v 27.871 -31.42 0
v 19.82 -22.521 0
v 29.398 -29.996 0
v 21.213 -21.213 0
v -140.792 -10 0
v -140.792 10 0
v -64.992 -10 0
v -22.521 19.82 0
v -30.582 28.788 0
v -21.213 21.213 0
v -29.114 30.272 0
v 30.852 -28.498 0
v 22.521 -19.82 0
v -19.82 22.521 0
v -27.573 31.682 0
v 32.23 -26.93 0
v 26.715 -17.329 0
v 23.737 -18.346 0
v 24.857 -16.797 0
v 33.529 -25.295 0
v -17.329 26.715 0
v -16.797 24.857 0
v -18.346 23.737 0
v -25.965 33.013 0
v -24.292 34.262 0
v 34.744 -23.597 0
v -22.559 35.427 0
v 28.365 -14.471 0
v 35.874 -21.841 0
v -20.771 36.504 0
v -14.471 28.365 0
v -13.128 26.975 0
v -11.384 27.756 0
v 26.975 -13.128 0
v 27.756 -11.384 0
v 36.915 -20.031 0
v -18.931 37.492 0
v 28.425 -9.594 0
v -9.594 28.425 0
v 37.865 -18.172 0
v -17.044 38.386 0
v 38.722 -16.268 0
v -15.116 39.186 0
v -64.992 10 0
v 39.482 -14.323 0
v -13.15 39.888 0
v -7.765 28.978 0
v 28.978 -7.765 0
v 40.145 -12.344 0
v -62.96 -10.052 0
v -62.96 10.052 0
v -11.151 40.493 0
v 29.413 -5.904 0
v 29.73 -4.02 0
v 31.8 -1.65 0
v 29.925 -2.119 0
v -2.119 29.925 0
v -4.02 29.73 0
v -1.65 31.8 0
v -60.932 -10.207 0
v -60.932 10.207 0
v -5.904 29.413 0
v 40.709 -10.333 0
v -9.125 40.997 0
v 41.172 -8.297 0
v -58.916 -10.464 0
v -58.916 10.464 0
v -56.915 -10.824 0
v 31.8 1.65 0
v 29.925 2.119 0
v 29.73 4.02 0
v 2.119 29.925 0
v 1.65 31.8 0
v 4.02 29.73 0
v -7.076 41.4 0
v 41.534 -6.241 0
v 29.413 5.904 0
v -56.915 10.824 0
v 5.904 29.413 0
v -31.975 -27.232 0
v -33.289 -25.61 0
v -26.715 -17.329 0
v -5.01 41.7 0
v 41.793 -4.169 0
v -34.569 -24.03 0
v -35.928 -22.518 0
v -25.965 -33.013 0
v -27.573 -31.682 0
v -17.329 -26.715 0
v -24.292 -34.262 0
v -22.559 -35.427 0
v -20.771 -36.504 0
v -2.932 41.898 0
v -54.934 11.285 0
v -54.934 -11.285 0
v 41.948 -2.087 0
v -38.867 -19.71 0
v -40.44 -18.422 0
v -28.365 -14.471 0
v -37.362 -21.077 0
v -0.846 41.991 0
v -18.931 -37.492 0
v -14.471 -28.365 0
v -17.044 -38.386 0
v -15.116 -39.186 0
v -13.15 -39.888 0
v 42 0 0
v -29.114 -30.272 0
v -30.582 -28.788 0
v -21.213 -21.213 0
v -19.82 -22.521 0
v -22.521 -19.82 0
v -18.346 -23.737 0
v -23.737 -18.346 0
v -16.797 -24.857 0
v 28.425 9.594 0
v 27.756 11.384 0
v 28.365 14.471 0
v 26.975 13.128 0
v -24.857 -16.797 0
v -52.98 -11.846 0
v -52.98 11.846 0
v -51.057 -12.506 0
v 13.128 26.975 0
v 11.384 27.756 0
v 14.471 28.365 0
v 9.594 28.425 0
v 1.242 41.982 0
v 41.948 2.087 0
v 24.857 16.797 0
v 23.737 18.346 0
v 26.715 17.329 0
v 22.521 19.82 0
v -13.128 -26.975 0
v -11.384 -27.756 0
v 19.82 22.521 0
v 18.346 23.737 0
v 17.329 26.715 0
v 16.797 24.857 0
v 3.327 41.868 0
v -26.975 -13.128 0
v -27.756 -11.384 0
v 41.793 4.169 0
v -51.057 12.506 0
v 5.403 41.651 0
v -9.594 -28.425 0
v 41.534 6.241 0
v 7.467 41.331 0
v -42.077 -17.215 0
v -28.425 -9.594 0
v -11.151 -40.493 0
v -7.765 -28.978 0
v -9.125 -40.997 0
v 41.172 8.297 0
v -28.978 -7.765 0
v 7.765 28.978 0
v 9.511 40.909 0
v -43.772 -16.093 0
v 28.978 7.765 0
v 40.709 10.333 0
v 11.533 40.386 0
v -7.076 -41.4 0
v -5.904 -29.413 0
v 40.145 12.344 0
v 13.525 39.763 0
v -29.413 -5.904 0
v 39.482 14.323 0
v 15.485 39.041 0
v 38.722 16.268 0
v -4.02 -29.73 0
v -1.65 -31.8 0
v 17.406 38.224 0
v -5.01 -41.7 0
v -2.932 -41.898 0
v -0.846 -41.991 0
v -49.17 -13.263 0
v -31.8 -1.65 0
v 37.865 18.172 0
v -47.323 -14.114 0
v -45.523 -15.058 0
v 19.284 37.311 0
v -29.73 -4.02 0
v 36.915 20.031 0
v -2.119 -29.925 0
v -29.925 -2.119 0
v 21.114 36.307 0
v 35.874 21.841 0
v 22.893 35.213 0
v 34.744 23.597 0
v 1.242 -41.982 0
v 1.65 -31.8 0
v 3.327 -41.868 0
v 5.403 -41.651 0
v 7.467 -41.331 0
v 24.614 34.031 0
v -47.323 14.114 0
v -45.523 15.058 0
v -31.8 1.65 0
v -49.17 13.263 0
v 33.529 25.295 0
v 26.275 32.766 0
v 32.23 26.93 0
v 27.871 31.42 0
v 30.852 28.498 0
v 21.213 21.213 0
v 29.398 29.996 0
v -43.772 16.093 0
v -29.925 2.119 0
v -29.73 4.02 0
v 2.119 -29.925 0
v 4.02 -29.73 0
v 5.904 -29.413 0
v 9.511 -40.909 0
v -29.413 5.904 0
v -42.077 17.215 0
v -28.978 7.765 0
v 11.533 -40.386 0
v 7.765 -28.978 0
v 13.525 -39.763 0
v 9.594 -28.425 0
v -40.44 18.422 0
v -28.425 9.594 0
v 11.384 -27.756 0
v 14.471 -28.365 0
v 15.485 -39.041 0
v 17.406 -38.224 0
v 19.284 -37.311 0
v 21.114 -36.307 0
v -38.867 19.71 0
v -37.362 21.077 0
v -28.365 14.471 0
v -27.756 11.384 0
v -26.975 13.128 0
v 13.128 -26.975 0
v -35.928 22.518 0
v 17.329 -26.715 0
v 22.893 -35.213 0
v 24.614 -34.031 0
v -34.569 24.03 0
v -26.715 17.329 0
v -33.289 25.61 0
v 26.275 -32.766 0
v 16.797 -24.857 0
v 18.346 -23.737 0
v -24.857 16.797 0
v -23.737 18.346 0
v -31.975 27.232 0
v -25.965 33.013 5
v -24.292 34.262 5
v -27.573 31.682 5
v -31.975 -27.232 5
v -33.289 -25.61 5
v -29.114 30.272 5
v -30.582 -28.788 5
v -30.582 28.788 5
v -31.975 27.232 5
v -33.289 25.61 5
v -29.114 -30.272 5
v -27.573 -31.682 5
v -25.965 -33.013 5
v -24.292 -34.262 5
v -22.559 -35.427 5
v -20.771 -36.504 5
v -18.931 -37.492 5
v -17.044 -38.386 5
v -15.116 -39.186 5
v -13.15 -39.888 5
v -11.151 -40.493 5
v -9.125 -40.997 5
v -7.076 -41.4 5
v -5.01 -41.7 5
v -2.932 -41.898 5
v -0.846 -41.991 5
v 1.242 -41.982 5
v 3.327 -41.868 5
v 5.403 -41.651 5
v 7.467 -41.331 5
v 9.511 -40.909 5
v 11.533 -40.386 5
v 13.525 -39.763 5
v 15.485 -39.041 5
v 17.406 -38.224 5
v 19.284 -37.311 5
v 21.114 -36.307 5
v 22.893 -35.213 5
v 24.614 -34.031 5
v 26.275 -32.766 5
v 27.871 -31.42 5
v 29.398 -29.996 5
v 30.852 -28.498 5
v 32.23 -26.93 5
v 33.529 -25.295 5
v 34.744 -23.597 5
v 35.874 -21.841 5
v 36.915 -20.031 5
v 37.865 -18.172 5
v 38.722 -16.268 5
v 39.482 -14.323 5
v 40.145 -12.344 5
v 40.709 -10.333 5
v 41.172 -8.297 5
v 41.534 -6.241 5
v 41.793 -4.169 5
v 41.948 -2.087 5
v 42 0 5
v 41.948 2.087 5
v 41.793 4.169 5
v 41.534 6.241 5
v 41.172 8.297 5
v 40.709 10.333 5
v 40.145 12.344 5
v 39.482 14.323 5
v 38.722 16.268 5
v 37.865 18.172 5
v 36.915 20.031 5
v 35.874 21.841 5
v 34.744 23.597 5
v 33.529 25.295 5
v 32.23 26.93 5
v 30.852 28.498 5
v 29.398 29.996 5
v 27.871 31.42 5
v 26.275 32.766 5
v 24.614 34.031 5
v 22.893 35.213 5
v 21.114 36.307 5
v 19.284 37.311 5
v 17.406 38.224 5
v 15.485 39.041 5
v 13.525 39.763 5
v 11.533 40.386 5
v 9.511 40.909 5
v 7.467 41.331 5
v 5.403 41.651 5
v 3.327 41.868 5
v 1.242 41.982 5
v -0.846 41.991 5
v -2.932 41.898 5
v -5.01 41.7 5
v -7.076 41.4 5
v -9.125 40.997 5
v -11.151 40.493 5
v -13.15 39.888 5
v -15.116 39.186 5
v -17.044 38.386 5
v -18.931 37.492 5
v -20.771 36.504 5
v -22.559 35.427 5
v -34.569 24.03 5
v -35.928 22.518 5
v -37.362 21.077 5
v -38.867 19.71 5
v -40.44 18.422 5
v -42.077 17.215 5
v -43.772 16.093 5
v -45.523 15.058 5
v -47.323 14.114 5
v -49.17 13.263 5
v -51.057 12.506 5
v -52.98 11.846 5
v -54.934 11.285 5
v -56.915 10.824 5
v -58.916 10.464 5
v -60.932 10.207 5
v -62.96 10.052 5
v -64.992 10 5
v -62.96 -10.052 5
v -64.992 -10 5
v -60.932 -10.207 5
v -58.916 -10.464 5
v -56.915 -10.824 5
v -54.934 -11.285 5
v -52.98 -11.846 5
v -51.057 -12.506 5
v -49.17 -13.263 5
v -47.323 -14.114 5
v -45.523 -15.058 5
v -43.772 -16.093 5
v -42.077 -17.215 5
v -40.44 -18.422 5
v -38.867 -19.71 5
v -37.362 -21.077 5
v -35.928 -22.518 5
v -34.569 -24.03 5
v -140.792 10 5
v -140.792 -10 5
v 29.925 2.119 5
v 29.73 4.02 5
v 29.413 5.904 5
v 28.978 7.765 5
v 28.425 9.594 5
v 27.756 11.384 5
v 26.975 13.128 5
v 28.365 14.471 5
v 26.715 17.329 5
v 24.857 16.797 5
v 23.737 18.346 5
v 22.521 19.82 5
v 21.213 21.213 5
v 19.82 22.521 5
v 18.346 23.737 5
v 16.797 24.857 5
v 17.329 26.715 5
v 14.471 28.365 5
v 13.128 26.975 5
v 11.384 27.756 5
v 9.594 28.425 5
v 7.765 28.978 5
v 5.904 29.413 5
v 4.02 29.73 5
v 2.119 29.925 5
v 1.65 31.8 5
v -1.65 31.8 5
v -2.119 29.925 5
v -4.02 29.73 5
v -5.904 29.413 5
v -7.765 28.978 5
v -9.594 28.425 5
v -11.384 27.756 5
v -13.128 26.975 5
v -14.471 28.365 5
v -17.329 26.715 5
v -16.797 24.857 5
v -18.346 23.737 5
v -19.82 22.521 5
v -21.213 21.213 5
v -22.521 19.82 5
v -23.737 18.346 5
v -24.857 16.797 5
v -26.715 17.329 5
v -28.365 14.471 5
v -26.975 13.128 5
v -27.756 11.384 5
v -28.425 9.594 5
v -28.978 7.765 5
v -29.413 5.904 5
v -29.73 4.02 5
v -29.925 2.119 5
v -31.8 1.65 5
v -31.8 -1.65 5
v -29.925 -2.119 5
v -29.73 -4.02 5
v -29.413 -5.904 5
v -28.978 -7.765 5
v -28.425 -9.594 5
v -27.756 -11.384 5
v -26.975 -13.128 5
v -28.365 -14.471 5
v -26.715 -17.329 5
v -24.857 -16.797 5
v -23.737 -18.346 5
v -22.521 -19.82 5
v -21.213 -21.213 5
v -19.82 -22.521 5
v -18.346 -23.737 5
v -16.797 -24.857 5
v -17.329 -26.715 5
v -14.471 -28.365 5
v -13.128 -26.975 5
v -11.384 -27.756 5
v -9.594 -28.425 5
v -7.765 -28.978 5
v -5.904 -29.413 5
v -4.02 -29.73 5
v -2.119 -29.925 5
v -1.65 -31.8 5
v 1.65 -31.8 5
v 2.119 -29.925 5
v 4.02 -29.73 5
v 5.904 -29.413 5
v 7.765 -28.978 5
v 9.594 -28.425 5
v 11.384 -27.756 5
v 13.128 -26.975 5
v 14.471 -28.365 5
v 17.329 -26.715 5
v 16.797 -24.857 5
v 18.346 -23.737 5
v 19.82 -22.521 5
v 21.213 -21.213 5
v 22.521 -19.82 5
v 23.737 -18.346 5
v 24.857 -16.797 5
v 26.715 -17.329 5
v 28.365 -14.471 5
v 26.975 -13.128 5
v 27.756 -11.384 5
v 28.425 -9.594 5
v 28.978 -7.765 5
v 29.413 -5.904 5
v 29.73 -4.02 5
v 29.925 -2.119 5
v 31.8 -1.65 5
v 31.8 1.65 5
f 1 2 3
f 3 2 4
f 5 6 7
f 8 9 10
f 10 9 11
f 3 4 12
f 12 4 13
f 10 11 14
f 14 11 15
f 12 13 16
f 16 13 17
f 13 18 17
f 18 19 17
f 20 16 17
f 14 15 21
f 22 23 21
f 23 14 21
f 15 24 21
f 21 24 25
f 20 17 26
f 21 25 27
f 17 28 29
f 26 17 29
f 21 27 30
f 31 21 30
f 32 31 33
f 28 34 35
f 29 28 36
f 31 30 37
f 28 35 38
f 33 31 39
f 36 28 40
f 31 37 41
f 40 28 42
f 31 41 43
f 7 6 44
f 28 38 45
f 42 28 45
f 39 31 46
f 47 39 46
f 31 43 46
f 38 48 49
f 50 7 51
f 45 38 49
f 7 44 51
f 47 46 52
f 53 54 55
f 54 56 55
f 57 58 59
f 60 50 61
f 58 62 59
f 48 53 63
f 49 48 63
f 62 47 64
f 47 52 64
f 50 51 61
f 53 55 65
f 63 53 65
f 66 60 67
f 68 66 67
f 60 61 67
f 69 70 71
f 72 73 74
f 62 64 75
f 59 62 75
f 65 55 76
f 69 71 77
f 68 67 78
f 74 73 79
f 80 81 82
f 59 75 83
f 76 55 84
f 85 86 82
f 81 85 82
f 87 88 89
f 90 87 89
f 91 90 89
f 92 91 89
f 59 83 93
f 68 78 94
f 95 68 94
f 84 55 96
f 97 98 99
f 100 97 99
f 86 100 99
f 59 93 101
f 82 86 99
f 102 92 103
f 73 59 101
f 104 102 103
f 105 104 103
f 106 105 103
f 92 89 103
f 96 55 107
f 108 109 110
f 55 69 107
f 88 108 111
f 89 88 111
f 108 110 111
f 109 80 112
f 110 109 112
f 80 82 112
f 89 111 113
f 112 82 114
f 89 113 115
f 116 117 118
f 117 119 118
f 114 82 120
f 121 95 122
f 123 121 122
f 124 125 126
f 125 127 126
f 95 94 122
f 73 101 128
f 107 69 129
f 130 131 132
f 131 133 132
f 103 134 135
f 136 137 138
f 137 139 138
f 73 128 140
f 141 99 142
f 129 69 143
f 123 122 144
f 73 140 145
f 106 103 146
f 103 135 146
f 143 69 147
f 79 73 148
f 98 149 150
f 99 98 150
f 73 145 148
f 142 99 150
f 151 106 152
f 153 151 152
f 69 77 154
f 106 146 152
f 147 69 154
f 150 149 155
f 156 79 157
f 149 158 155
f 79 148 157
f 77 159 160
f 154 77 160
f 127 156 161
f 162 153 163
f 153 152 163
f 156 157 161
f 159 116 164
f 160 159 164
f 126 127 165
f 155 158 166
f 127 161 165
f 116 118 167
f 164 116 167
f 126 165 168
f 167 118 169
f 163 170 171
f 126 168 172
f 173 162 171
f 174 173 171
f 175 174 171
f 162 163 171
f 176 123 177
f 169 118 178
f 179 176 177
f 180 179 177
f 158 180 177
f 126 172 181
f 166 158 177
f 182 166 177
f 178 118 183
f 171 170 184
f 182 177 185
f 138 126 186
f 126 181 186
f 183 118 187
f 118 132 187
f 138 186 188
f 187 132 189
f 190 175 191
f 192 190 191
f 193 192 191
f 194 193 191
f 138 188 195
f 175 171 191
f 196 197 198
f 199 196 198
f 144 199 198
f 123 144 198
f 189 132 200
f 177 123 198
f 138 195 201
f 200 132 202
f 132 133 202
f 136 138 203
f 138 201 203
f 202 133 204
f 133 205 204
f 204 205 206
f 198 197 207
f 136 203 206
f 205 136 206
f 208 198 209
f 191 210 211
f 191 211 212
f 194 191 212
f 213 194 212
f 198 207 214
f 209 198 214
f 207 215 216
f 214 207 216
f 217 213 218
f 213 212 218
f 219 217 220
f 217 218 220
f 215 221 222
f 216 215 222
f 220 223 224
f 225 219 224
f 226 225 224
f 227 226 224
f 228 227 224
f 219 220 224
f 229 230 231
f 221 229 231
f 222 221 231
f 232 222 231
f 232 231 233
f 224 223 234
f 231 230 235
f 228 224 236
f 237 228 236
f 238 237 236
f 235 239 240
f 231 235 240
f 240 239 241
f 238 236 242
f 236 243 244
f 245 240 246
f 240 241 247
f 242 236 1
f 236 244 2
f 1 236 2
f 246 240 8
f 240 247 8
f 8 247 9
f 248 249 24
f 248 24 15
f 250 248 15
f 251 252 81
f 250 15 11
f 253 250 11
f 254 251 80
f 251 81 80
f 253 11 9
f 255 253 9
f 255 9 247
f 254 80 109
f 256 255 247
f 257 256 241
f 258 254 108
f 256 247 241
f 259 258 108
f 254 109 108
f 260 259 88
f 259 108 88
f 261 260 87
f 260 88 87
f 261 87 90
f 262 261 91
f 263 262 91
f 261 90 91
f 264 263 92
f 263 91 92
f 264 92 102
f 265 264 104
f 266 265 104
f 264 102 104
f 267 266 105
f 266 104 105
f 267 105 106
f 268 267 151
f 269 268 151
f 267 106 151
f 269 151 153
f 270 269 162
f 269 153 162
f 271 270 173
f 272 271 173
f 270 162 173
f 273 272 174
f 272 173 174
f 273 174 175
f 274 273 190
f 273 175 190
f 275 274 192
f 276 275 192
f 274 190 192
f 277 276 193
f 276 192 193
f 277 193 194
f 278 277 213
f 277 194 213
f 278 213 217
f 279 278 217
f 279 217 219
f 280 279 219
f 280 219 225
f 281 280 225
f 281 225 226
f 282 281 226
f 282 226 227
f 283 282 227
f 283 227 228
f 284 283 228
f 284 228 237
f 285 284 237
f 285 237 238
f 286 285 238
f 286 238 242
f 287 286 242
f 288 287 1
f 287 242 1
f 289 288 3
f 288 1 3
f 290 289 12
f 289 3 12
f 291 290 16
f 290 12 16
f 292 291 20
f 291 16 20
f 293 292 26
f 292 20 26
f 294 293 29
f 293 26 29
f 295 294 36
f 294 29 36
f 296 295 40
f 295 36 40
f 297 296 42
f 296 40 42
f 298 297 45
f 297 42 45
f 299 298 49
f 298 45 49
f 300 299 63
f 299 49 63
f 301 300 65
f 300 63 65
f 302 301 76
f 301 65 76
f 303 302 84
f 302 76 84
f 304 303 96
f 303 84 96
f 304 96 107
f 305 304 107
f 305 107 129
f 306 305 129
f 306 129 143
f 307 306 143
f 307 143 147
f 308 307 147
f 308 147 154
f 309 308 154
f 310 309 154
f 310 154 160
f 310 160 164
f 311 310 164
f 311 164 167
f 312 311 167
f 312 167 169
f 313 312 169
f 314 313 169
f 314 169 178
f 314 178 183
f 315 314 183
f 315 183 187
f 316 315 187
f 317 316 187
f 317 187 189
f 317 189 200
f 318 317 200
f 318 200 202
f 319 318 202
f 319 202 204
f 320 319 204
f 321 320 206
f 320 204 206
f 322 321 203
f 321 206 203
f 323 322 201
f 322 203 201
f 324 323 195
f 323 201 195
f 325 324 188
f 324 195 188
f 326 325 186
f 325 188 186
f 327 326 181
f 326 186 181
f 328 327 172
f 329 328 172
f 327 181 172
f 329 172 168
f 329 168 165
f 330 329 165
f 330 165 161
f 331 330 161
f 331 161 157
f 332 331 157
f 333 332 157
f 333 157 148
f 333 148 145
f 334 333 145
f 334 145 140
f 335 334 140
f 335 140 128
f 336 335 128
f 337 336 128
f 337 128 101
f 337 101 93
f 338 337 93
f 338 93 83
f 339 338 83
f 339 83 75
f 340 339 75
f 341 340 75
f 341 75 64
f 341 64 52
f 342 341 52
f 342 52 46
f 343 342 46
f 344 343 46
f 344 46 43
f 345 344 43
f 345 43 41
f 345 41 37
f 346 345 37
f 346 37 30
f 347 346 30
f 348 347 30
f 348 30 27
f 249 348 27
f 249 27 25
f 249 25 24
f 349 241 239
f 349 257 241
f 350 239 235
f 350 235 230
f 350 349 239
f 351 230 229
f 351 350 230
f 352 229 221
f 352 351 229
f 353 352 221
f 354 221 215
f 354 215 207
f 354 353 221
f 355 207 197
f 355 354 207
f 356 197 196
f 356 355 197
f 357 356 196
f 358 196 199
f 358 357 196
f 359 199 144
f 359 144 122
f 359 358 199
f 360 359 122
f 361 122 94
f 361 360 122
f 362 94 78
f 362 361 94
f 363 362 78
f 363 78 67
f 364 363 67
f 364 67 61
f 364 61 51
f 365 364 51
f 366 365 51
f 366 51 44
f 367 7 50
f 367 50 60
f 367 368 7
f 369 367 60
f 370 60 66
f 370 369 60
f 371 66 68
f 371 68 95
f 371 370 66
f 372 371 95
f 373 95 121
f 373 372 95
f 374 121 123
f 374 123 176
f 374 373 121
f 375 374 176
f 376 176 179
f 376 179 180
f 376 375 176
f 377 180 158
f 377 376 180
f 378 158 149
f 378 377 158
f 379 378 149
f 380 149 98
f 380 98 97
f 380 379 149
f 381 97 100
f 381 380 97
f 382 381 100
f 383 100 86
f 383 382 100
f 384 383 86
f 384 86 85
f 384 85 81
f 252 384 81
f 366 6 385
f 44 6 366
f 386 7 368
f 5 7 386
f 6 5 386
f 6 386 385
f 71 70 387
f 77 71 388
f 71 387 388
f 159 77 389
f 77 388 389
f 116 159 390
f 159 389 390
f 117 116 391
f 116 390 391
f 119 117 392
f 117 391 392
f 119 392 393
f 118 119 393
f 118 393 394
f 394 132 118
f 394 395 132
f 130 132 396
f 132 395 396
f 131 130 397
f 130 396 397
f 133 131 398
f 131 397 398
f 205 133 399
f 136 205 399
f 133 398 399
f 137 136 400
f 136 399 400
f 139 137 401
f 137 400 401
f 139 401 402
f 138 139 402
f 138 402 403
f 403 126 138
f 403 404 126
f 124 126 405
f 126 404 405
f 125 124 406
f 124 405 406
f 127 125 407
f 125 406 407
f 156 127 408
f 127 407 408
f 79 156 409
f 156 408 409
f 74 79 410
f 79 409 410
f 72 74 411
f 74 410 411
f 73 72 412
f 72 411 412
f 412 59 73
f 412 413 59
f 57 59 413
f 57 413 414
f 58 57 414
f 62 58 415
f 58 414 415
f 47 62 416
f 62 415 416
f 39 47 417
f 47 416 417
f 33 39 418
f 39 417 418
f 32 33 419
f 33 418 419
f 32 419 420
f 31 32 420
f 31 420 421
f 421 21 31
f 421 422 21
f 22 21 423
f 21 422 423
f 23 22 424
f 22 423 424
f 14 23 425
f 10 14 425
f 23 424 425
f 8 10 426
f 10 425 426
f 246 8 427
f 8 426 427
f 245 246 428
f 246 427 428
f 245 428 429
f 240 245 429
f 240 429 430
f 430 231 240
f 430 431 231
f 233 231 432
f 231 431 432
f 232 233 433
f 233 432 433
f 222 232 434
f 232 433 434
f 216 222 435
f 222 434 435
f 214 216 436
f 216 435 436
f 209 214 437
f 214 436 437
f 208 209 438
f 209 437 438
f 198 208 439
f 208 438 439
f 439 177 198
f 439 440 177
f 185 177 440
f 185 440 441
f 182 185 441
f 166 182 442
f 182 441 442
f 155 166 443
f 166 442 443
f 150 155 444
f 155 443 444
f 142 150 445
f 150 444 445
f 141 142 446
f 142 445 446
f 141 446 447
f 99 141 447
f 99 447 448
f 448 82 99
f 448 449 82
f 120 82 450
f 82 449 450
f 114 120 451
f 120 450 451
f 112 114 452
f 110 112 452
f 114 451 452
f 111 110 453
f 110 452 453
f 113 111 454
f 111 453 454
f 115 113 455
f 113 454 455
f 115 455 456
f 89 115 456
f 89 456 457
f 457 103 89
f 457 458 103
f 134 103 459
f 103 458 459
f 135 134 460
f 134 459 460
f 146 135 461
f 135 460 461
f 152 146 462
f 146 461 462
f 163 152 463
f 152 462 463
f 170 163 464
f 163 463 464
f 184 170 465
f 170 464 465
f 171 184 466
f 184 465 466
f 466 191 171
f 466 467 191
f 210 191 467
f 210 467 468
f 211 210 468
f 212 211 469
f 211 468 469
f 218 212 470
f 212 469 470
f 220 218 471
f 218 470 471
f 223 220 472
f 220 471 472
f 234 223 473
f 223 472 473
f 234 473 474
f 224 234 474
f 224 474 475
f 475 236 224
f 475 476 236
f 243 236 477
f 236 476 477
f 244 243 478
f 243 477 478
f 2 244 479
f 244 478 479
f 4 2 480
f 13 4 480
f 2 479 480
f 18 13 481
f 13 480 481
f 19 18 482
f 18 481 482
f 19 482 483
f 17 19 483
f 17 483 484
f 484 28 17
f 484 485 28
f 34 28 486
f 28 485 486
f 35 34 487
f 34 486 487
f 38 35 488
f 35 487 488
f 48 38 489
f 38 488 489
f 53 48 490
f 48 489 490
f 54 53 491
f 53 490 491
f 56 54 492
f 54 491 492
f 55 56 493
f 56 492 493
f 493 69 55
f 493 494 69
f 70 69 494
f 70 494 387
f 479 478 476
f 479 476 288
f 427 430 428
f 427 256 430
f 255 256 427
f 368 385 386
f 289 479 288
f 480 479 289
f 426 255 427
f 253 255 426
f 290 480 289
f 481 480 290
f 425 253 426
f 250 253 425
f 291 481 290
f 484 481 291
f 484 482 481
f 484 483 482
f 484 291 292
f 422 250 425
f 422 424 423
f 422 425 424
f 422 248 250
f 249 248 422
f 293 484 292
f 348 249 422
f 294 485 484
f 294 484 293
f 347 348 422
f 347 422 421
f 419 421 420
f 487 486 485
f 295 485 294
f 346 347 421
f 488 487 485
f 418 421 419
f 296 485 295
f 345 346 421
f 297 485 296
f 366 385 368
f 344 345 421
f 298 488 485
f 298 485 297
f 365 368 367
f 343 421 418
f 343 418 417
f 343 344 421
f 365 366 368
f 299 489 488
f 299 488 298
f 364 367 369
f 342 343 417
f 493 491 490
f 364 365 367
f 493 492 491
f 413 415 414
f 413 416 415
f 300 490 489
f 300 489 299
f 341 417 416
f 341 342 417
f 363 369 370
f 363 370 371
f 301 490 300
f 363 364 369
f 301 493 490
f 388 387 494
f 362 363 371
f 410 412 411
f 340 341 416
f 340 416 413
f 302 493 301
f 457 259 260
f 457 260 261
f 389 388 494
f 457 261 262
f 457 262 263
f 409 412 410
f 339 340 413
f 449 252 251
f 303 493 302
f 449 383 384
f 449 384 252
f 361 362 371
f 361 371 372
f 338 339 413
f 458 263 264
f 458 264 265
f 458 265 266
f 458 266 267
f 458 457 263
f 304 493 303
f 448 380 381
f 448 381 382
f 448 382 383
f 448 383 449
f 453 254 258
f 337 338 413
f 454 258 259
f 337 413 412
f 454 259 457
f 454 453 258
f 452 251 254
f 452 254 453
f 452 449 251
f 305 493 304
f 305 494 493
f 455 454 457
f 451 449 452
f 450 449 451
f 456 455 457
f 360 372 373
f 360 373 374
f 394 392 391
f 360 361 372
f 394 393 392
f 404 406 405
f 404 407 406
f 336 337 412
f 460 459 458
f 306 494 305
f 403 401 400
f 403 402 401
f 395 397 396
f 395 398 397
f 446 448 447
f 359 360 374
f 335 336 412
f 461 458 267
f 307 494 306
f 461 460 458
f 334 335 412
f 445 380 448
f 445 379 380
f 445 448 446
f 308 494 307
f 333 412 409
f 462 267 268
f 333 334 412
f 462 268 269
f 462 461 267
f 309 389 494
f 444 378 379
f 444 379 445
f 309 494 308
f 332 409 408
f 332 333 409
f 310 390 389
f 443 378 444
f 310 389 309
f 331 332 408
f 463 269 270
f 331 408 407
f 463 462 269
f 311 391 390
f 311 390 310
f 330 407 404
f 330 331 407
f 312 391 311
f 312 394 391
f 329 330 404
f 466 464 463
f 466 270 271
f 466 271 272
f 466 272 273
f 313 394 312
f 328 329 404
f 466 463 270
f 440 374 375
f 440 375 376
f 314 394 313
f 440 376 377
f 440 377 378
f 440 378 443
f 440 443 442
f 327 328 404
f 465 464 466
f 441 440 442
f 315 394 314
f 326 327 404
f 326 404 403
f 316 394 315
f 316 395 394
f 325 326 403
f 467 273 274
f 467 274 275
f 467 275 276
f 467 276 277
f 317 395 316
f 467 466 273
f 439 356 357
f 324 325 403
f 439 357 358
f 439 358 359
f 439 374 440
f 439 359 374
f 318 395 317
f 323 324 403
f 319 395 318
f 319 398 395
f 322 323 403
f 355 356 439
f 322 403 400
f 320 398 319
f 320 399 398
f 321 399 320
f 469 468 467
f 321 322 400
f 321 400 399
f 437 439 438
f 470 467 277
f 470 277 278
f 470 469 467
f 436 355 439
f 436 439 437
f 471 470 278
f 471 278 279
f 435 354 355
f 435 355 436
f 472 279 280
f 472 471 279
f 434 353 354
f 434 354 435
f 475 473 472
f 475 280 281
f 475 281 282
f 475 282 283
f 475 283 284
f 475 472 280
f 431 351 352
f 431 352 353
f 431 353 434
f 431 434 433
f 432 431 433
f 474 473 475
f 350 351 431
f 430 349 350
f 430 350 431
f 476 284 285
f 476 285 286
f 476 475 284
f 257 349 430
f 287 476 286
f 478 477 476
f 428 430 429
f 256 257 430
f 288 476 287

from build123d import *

# Parameters (mm, degrees)
PAD_DEPTH          = 5
SKETCH001_R        = 30
POCKET_DEPTH       = 5.001
POCKET001_DEPTH    = 407.463283
POLARPATTERN_COUNT = 12
FILLET_R           = 40
FILLET001_R        = 40


with BuildPart() as part:
    # Sketch → Pad (new body)
    with BuildSketch(Plane.XY):
        with BuildLine():
            Line((-140.792156, 10), (-40.792156, 10))
            ThreePointArc((-40.792156, -10), (42, 0), (-40.792156, 10))
            Line((-40.792156, -10), (-140.792156, -10))
            Line((-140.792156, -10), (-140.792156, 10))
        make_face()
    extrude(amount=PAD_DEPTH)

    # Sketch001 → Pocket (cut, through all)
    with BuildSketch(Plane.XY.offset(5)):
        Circle(SKETCH001_R)
    extrude(amount=-POCKET_DEPTH, mode=Mode.SUBTRACT)

    # Sketch002 → Pocket001 (cut, through all)
    with BuildSketch(Plane.XY.offset(5)):
        Polygon((-1.65, 31.8), (-2.15, 29.8), (2.15, 29.8), (1.65, 31.8), align=None)
    pocket001 = extrude(amount=-POCKET001_DEPTH, mode=Mode.SUBTRACT)

    # PolarPattern: Pocket001 ×12 about axis
    polarpattern_axis = Axis((0, 0, 5), (0, 0, 1))
    for i in range(1, POLARPATTERN_COUNT):
        add(pocket001.rotate(polarpattern_axis, i * 360 / POLARPATTERN_COUNT), mode=Mode.SUBTRACT)

    # Fillet
    fillet_edges = [part.edges().sort_by_distance(p)[0] for p in [
        (-40.792156, -10, 2.5),
    ]]
    fillet(fillet_edges, radius=FILLET_R)

    # Fillet001
    fillet001_edges = [part.edges().sort_by_distance(p)[0] for p in [
        (-40.792156, 10, 2.5),
    ]]
    fillet(fillet001_edges, radius=FILLET001_R)


solid = part.part
